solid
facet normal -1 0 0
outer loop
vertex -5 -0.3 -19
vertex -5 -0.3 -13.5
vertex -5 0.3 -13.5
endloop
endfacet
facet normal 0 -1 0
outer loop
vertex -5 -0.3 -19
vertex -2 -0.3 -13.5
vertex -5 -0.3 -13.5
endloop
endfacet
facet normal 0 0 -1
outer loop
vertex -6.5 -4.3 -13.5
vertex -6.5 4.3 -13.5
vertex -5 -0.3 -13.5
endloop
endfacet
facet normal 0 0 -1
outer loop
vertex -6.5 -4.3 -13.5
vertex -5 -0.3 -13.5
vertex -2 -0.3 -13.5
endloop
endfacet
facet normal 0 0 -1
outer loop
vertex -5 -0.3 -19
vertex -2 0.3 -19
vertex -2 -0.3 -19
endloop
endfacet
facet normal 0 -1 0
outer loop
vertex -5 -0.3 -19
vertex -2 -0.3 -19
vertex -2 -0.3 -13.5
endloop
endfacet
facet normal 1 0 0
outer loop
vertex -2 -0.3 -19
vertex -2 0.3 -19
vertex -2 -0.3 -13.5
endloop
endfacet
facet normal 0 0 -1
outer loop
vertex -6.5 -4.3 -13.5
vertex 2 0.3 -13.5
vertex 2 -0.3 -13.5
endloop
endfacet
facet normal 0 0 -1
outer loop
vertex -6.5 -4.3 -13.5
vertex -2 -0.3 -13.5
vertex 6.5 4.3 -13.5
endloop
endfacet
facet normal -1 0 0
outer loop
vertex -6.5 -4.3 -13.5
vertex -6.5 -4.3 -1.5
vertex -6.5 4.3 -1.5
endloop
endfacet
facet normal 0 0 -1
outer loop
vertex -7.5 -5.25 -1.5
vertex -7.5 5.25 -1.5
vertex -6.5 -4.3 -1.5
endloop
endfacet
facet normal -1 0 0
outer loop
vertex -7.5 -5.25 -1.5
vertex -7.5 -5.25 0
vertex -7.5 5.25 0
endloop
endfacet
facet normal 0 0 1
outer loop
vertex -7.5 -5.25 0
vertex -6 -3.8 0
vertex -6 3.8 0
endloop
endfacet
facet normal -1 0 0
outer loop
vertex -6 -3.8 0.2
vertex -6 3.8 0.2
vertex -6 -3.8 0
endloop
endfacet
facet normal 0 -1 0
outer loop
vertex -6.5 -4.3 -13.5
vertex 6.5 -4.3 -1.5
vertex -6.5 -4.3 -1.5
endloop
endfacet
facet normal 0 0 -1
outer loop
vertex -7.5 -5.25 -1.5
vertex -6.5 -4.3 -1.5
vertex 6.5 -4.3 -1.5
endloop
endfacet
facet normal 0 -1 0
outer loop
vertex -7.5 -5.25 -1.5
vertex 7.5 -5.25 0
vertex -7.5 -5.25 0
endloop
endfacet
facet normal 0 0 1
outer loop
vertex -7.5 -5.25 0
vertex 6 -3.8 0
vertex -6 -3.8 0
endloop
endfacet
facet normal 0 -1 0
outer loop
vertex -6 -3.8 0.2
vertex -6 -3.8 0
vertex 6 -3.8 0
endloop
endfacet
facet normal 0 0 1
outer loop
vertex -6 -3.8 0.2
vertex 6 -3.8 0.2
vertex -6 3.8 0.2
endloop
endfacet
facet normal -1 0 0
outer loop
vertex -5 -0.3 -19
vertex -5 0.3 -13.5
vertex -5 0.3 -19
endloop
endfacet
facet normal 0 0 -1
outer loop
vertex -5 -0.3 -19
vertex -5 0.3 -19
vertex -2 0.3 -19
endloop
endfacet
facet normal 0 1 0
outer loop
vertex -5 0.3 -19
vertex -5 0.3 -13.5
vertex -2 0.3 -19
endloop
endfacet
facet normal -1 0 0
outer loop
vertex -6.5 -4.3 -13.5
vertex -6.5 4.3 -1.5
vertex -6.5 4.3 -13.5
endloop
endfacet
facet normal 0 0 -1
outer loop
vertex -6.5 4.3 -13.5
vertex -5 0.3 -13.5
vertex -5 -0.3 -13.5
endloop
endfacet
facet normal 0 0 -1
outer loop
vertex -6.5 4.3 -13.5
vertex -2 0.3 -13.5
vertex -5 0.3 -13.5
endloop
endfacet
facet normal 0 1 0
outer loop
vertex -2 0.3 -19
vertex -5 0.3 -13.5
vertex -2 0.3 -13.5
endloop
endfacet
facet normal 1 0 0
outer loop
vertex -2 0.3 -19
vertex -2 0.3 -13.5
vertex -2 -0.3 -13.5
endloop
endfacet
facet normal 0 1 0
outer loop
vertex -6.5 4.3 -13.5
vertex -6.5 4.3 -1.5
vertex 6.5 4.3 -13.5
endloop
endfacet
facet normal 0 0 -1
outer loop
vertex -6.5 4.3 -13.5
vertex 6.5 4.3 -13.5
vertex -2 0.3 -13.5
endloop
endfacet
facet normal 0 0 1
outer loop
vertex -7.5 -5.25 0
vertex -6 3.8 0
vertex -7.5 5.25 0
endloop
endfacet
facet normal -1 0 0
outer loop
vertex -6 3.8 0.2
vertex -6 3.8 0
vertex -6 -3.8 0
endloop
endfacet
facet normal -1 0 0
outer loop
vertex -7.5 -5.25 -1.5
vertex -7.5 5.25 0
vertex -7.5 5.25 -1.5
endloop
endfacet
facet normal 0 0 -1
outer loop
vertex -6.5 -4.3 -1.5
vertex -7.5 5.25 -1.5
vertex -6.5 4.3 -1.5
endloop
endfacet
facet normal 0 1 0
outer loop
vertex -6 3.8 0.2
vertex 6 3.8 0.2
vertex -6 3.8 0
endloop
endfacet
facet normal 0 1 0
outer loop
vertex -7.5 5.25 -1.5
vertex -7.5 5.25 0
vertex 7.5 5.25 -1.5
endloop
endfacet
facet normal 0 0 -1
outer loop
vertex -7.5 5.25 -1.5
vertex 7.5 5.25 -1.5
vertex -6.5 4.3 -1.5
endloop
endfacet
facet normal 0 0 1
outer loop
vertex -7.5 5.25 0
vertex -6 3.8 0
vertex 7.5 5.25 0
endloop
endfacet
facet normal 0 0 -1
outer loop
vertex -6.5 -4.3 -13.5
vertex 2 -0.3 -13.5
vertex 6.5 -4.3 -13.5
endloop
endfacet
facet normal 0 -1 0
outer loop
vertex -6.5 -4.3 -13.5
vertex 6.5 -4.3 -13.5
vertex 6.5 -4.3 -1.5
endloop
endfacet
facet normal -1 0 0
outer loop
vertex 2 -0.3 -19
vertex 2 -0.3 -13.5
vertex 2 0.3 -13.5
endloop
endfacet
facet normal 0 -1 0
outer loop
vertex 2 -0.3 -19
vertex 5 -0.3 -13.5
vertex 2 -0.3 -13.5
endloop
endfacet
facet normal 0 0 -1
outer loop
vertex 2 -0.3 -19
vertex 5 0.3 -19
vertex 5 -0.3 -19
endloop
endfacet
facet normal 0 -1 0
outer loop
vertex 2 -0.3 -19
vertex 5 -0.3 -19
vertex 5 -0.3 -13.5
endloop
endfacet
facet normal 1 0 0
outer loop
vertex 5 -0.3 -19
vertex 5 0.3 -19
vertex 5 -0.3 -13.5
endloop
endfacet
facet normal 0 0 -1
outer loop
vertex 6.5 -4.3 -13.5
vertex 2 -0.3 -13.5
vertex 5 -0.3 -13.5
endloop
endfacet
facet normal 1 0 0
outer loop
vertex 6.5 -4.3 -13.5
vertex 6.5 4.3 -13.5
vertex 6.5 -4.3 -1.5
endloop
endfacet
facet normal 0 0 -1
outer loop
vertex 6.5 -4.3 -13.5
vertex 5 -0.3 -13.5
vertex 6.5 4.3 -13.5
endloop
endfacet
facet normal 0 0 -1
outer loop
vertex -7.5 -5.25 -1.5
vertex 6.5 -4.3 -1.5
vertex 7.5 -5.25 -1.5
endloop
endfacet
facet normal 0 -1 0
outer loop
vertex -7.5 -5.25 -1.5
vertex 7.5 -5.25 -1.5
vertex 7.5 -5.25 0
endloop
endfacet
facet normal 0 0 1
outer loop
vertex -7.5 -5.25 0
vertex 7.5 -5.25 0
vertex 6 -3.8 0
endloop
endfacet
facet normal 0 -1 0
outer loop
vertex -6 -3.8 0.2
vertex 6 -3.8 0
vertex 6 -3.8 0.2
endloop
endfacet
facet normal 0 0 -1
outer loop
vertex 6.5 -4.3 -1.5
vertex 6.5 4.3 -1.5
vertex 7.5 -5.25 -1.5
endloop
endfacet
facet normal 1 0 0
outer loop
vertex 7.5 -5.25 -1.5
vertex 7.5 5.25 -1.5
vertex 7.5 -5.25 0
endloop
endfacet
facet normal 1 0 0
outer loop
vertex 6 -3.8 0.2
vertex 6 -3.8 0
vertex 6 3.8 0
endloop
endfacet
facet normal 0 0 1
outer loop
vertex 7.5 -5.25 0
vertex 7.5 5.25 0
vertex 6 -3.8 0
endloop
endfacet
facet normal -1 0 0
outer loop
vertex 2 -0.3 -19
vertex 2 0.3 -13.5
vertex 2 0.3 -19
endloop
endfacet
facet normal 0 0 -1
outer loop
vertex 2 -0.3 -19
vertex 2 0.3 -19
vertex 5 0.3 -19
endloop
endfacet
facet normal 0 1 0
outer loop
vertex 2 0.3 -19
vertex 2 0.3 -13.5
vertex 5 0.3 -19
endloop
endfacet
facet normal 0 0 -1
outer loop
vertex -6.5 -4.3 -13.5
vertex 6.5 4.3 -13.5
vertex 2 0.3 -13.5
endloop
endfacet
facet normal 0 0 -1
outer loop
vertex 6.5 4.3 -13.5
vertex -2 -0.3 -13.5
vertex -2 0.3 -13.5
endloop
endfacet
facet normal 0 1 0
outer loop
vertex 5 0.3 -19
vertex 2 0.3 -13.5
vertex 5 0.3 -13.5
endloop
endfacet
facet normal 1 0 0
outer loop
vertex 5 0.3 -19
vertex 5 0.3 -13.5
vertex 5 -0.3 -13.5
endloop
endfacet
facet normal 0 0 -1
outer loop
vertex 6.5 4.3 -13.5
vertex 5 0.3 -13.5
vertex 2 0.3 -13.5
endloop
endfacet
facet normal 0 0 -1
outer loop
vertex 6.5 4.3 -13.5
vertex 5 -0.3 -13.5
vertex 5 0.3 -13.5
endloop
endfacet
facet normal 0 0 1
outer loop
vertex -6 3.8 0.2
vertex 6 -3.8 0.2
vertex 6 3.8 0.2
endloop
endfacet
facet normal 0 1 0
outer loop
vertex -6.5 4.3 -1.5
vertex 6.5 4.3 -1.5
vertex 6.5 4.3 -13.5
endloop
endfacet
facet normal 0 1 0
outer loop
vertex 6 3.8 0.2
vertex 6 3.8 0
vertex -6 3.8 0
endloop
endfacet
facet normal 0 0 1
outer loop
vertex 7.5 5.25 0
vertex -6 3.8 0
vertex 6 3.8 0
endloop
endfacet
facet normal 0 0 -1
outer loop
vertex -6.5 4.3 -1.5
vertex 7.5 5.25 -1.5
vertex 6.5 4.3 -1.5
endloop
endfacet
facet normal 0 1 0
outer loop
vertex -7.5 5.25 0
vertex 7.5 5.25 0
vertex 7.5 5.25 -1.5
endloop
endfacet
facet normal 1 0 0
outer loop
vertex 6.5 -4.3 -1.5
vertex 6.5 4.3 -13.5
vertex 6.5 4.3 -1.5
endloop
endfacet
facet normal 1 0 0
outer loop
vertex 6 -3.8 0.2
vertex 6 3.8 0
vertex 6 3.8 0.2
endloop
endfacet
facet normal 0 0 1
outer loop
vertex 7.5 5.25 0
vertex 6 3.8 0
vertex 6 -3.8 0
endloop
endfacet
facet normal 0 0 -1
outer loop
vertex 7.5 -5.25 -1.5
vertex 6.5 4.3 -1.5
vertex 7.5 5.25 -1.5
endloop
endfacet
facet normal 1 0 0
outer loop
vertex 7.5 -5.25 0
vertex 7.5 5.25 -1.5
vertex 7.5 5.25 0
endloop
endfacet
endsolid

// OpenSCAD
// file: ../lib/lib.scad
// Shared helpers. Include AFTER params.scad (needs TOL, M3_* etc.).
$fa = 4; $fs = 0.5;

module rrect(size, r) {            // 2D rounded rectangle, centred
    r2 = min(r, min(size[0], size[1]) / 2 - 0.001);
    offset(r = r2) square([size[0] - 2 * r2, size[1] - 2 * r2], center = true);
}
module rbox(size, r, center_xy = true) {   // box with rounded vertical edges
    translate(center_xy ? [0, 0, 0] : [size[0] / 2, size[1] / 2, 0])
        linear_extrude(size[2]) rrect([size[0], size[1]], r);
}
module rbox_at(x0, x1, y0, y1, z0, z1, r = 0.01) {
    translate([(x0 + x1) / 2, (y0 + y1) / 2, z0]) rbox([x1 - x0, y1 - y0, z1 - z0], r);
}
module box_at(x0, x1, y0, y1, z0, z1) { translate([x0, y0, z0]) cube([x1 - x0, y1 - y0, z1 - z0]); }

module ring(ro, ri, h) { difference() { cylinder(r = ro, h = h); translate([0, 0, -1]) cylinder(r = ri, h = h + 2); } }
module ring_sector(ro, ri, h, a0, a1) {
    intersection() {
        ring(ro, ri, h);
        linear_extrude(h) polygon(concat([[0, 0]], [for (a = [a0 : (a1 - a0) / 24 : a1]) 2 * ro * [cos(a), sin(a)]]));
    }
}
// teardrop hole along an axis lying horizontal (axis = Y after rotation), printable w/o support
module teardrop2d(d) { union() { circle(d = d); rotate(45) square(d / 2); } }
// vertical heat-set insert hole, opening at z=0 going +z (depth l)
module insert_hole(l = M3_INSERT_L) { translate([0, 0, -EPS]) cylinder(d = M3_INSERT_D, h = l + EPS); }
module m3_clear(l) { translate([0, 0, -EPS]) cylinder(d = M3_CLEAR, h = l + 2 * EPS); }
module m3_csk(l) {  // countersunk clearance from z=0 upward, head at z=0 side
    translate([0, 0, -EPS]) { cylinder(d = M3_CLEAR, h = l + 2 * EPS); cylinder(d1 = 6.4, d2 = M3_CLEAR, h = 1.7); }
}
module card2d() { rrect([CARD_L, CARD_W], CARD_R); }
module card_at(cy, z) { translate([0, cy, z]) linear_extrude(CARD_T) card2d(); }

// ---- gears ----
function _inv(a) = tan(a) - a * PI_ / 180;           // involute function, a in deg
function _invpt(rb, r, ang0, s) = let(al = acos(rb / r), th = ang0 - s * (_inv(al) * 180 / PI_)) [r * cos(th), r * sin(th)];
module involute_gear2d(m, z, pa = 20, clearance = 0.05) {
    rp = m * z / 2; rb = rp * cos(pa); ra = rp + m - clearance; rf = rp - 1.25 * m;
    half = 90 / z + _inv(pa) * 180 / PI_;            // tooth half-angle at base (deg)
    n = 8;
    rs = [for (i = [0 : n]) max(rb, rf) + (ra - max(rb, rf)) * i / n];
    union() {
        circle(r = rf, $fn = z * 4);
        for (k = [0 : z - 1]) rotate(k * 360 / z) polygon(concat(
            [[rf * cos(-half), rf * sin(-half)]],
            [for (r = rs) let(p = _invpt(rb, r, half, 1)) [p[0], -p[1]]],
            [for (i = [n : -1 : 0]) _invpt(rb, rs[i], half, 1)],
            [[rf * cos(half), rf * sin(half)]]));
    }
}
// straight gear rack (2D in XY: teeth along +x, pointing -y, pitch line at y=0)
module gear_rack2d(m, len, back = 3) {
    p = PI_ * m; ad = m; de = 1.25 * m; t = tan(20);
    n = ceil(len / p) + 1;
    intersection() {
        union() {
            translate([0, de]) square([len, back]);
            for (i = [0 : n]) translate([i * p - p / 4, 0]) polygon([
                [-(p / 4 + de * t), de + 0.01], [p / 4 + de * t + 0.01, de + 0.01],
                [p / 4 - ad * t, -ad], [-(p / 4 - ad * t), -ad] ]);
        }
        translate([0, -ad - 1]) square([len, ad + de + back + 2]);
    }
}
// GT2 belt-tooth profile ring (teeth outward), 2D
module gt2_ring2d(n, r_land, ri) {
    union() {
        difference() { circle(r = r_land + 0.01, $fn = n * 2); circle(r = ri, $fn = n * 2); }
        for (k = [0 : n - 1]) rotate(k * 360 / n)
            translate([r_land, 0]) hull() { translate([-0.2, 0]) square([0.2, 1.0], center = true); translate([0.25, 0]) circle(r = 0.5, $fn = 12); }
    }
}
// main file
// Vendor model: Mini rocker switch KCD11 (15x10.5 bezel, cut-out 13x8.7). Local: front face z=0, body toward -Z, long side X.
include <../params.scad>
include <../lib/lib.scad>
module vendor_rocker_switch() {
    color([0.08,0.08,0.08]) { translate([-7.5, -5.25, -1.5]) cube([15, 10.5, 1.5]); translate([-6.5, -4.3, -13.5]) cube([13, 8.6, 12]); }
    color([0.15,0.15,0.15]) translate([-6, -3.8, -1.2]) cube([12, 7.6, 1.4]);
    color([0.8,0.8,0.8]) for (x = [-3.5, 3.5]) translate([x - 1.5, -0.3, -19]) cube([3, 0.6, 5.5]);
}

vendor_rocker_switch();
